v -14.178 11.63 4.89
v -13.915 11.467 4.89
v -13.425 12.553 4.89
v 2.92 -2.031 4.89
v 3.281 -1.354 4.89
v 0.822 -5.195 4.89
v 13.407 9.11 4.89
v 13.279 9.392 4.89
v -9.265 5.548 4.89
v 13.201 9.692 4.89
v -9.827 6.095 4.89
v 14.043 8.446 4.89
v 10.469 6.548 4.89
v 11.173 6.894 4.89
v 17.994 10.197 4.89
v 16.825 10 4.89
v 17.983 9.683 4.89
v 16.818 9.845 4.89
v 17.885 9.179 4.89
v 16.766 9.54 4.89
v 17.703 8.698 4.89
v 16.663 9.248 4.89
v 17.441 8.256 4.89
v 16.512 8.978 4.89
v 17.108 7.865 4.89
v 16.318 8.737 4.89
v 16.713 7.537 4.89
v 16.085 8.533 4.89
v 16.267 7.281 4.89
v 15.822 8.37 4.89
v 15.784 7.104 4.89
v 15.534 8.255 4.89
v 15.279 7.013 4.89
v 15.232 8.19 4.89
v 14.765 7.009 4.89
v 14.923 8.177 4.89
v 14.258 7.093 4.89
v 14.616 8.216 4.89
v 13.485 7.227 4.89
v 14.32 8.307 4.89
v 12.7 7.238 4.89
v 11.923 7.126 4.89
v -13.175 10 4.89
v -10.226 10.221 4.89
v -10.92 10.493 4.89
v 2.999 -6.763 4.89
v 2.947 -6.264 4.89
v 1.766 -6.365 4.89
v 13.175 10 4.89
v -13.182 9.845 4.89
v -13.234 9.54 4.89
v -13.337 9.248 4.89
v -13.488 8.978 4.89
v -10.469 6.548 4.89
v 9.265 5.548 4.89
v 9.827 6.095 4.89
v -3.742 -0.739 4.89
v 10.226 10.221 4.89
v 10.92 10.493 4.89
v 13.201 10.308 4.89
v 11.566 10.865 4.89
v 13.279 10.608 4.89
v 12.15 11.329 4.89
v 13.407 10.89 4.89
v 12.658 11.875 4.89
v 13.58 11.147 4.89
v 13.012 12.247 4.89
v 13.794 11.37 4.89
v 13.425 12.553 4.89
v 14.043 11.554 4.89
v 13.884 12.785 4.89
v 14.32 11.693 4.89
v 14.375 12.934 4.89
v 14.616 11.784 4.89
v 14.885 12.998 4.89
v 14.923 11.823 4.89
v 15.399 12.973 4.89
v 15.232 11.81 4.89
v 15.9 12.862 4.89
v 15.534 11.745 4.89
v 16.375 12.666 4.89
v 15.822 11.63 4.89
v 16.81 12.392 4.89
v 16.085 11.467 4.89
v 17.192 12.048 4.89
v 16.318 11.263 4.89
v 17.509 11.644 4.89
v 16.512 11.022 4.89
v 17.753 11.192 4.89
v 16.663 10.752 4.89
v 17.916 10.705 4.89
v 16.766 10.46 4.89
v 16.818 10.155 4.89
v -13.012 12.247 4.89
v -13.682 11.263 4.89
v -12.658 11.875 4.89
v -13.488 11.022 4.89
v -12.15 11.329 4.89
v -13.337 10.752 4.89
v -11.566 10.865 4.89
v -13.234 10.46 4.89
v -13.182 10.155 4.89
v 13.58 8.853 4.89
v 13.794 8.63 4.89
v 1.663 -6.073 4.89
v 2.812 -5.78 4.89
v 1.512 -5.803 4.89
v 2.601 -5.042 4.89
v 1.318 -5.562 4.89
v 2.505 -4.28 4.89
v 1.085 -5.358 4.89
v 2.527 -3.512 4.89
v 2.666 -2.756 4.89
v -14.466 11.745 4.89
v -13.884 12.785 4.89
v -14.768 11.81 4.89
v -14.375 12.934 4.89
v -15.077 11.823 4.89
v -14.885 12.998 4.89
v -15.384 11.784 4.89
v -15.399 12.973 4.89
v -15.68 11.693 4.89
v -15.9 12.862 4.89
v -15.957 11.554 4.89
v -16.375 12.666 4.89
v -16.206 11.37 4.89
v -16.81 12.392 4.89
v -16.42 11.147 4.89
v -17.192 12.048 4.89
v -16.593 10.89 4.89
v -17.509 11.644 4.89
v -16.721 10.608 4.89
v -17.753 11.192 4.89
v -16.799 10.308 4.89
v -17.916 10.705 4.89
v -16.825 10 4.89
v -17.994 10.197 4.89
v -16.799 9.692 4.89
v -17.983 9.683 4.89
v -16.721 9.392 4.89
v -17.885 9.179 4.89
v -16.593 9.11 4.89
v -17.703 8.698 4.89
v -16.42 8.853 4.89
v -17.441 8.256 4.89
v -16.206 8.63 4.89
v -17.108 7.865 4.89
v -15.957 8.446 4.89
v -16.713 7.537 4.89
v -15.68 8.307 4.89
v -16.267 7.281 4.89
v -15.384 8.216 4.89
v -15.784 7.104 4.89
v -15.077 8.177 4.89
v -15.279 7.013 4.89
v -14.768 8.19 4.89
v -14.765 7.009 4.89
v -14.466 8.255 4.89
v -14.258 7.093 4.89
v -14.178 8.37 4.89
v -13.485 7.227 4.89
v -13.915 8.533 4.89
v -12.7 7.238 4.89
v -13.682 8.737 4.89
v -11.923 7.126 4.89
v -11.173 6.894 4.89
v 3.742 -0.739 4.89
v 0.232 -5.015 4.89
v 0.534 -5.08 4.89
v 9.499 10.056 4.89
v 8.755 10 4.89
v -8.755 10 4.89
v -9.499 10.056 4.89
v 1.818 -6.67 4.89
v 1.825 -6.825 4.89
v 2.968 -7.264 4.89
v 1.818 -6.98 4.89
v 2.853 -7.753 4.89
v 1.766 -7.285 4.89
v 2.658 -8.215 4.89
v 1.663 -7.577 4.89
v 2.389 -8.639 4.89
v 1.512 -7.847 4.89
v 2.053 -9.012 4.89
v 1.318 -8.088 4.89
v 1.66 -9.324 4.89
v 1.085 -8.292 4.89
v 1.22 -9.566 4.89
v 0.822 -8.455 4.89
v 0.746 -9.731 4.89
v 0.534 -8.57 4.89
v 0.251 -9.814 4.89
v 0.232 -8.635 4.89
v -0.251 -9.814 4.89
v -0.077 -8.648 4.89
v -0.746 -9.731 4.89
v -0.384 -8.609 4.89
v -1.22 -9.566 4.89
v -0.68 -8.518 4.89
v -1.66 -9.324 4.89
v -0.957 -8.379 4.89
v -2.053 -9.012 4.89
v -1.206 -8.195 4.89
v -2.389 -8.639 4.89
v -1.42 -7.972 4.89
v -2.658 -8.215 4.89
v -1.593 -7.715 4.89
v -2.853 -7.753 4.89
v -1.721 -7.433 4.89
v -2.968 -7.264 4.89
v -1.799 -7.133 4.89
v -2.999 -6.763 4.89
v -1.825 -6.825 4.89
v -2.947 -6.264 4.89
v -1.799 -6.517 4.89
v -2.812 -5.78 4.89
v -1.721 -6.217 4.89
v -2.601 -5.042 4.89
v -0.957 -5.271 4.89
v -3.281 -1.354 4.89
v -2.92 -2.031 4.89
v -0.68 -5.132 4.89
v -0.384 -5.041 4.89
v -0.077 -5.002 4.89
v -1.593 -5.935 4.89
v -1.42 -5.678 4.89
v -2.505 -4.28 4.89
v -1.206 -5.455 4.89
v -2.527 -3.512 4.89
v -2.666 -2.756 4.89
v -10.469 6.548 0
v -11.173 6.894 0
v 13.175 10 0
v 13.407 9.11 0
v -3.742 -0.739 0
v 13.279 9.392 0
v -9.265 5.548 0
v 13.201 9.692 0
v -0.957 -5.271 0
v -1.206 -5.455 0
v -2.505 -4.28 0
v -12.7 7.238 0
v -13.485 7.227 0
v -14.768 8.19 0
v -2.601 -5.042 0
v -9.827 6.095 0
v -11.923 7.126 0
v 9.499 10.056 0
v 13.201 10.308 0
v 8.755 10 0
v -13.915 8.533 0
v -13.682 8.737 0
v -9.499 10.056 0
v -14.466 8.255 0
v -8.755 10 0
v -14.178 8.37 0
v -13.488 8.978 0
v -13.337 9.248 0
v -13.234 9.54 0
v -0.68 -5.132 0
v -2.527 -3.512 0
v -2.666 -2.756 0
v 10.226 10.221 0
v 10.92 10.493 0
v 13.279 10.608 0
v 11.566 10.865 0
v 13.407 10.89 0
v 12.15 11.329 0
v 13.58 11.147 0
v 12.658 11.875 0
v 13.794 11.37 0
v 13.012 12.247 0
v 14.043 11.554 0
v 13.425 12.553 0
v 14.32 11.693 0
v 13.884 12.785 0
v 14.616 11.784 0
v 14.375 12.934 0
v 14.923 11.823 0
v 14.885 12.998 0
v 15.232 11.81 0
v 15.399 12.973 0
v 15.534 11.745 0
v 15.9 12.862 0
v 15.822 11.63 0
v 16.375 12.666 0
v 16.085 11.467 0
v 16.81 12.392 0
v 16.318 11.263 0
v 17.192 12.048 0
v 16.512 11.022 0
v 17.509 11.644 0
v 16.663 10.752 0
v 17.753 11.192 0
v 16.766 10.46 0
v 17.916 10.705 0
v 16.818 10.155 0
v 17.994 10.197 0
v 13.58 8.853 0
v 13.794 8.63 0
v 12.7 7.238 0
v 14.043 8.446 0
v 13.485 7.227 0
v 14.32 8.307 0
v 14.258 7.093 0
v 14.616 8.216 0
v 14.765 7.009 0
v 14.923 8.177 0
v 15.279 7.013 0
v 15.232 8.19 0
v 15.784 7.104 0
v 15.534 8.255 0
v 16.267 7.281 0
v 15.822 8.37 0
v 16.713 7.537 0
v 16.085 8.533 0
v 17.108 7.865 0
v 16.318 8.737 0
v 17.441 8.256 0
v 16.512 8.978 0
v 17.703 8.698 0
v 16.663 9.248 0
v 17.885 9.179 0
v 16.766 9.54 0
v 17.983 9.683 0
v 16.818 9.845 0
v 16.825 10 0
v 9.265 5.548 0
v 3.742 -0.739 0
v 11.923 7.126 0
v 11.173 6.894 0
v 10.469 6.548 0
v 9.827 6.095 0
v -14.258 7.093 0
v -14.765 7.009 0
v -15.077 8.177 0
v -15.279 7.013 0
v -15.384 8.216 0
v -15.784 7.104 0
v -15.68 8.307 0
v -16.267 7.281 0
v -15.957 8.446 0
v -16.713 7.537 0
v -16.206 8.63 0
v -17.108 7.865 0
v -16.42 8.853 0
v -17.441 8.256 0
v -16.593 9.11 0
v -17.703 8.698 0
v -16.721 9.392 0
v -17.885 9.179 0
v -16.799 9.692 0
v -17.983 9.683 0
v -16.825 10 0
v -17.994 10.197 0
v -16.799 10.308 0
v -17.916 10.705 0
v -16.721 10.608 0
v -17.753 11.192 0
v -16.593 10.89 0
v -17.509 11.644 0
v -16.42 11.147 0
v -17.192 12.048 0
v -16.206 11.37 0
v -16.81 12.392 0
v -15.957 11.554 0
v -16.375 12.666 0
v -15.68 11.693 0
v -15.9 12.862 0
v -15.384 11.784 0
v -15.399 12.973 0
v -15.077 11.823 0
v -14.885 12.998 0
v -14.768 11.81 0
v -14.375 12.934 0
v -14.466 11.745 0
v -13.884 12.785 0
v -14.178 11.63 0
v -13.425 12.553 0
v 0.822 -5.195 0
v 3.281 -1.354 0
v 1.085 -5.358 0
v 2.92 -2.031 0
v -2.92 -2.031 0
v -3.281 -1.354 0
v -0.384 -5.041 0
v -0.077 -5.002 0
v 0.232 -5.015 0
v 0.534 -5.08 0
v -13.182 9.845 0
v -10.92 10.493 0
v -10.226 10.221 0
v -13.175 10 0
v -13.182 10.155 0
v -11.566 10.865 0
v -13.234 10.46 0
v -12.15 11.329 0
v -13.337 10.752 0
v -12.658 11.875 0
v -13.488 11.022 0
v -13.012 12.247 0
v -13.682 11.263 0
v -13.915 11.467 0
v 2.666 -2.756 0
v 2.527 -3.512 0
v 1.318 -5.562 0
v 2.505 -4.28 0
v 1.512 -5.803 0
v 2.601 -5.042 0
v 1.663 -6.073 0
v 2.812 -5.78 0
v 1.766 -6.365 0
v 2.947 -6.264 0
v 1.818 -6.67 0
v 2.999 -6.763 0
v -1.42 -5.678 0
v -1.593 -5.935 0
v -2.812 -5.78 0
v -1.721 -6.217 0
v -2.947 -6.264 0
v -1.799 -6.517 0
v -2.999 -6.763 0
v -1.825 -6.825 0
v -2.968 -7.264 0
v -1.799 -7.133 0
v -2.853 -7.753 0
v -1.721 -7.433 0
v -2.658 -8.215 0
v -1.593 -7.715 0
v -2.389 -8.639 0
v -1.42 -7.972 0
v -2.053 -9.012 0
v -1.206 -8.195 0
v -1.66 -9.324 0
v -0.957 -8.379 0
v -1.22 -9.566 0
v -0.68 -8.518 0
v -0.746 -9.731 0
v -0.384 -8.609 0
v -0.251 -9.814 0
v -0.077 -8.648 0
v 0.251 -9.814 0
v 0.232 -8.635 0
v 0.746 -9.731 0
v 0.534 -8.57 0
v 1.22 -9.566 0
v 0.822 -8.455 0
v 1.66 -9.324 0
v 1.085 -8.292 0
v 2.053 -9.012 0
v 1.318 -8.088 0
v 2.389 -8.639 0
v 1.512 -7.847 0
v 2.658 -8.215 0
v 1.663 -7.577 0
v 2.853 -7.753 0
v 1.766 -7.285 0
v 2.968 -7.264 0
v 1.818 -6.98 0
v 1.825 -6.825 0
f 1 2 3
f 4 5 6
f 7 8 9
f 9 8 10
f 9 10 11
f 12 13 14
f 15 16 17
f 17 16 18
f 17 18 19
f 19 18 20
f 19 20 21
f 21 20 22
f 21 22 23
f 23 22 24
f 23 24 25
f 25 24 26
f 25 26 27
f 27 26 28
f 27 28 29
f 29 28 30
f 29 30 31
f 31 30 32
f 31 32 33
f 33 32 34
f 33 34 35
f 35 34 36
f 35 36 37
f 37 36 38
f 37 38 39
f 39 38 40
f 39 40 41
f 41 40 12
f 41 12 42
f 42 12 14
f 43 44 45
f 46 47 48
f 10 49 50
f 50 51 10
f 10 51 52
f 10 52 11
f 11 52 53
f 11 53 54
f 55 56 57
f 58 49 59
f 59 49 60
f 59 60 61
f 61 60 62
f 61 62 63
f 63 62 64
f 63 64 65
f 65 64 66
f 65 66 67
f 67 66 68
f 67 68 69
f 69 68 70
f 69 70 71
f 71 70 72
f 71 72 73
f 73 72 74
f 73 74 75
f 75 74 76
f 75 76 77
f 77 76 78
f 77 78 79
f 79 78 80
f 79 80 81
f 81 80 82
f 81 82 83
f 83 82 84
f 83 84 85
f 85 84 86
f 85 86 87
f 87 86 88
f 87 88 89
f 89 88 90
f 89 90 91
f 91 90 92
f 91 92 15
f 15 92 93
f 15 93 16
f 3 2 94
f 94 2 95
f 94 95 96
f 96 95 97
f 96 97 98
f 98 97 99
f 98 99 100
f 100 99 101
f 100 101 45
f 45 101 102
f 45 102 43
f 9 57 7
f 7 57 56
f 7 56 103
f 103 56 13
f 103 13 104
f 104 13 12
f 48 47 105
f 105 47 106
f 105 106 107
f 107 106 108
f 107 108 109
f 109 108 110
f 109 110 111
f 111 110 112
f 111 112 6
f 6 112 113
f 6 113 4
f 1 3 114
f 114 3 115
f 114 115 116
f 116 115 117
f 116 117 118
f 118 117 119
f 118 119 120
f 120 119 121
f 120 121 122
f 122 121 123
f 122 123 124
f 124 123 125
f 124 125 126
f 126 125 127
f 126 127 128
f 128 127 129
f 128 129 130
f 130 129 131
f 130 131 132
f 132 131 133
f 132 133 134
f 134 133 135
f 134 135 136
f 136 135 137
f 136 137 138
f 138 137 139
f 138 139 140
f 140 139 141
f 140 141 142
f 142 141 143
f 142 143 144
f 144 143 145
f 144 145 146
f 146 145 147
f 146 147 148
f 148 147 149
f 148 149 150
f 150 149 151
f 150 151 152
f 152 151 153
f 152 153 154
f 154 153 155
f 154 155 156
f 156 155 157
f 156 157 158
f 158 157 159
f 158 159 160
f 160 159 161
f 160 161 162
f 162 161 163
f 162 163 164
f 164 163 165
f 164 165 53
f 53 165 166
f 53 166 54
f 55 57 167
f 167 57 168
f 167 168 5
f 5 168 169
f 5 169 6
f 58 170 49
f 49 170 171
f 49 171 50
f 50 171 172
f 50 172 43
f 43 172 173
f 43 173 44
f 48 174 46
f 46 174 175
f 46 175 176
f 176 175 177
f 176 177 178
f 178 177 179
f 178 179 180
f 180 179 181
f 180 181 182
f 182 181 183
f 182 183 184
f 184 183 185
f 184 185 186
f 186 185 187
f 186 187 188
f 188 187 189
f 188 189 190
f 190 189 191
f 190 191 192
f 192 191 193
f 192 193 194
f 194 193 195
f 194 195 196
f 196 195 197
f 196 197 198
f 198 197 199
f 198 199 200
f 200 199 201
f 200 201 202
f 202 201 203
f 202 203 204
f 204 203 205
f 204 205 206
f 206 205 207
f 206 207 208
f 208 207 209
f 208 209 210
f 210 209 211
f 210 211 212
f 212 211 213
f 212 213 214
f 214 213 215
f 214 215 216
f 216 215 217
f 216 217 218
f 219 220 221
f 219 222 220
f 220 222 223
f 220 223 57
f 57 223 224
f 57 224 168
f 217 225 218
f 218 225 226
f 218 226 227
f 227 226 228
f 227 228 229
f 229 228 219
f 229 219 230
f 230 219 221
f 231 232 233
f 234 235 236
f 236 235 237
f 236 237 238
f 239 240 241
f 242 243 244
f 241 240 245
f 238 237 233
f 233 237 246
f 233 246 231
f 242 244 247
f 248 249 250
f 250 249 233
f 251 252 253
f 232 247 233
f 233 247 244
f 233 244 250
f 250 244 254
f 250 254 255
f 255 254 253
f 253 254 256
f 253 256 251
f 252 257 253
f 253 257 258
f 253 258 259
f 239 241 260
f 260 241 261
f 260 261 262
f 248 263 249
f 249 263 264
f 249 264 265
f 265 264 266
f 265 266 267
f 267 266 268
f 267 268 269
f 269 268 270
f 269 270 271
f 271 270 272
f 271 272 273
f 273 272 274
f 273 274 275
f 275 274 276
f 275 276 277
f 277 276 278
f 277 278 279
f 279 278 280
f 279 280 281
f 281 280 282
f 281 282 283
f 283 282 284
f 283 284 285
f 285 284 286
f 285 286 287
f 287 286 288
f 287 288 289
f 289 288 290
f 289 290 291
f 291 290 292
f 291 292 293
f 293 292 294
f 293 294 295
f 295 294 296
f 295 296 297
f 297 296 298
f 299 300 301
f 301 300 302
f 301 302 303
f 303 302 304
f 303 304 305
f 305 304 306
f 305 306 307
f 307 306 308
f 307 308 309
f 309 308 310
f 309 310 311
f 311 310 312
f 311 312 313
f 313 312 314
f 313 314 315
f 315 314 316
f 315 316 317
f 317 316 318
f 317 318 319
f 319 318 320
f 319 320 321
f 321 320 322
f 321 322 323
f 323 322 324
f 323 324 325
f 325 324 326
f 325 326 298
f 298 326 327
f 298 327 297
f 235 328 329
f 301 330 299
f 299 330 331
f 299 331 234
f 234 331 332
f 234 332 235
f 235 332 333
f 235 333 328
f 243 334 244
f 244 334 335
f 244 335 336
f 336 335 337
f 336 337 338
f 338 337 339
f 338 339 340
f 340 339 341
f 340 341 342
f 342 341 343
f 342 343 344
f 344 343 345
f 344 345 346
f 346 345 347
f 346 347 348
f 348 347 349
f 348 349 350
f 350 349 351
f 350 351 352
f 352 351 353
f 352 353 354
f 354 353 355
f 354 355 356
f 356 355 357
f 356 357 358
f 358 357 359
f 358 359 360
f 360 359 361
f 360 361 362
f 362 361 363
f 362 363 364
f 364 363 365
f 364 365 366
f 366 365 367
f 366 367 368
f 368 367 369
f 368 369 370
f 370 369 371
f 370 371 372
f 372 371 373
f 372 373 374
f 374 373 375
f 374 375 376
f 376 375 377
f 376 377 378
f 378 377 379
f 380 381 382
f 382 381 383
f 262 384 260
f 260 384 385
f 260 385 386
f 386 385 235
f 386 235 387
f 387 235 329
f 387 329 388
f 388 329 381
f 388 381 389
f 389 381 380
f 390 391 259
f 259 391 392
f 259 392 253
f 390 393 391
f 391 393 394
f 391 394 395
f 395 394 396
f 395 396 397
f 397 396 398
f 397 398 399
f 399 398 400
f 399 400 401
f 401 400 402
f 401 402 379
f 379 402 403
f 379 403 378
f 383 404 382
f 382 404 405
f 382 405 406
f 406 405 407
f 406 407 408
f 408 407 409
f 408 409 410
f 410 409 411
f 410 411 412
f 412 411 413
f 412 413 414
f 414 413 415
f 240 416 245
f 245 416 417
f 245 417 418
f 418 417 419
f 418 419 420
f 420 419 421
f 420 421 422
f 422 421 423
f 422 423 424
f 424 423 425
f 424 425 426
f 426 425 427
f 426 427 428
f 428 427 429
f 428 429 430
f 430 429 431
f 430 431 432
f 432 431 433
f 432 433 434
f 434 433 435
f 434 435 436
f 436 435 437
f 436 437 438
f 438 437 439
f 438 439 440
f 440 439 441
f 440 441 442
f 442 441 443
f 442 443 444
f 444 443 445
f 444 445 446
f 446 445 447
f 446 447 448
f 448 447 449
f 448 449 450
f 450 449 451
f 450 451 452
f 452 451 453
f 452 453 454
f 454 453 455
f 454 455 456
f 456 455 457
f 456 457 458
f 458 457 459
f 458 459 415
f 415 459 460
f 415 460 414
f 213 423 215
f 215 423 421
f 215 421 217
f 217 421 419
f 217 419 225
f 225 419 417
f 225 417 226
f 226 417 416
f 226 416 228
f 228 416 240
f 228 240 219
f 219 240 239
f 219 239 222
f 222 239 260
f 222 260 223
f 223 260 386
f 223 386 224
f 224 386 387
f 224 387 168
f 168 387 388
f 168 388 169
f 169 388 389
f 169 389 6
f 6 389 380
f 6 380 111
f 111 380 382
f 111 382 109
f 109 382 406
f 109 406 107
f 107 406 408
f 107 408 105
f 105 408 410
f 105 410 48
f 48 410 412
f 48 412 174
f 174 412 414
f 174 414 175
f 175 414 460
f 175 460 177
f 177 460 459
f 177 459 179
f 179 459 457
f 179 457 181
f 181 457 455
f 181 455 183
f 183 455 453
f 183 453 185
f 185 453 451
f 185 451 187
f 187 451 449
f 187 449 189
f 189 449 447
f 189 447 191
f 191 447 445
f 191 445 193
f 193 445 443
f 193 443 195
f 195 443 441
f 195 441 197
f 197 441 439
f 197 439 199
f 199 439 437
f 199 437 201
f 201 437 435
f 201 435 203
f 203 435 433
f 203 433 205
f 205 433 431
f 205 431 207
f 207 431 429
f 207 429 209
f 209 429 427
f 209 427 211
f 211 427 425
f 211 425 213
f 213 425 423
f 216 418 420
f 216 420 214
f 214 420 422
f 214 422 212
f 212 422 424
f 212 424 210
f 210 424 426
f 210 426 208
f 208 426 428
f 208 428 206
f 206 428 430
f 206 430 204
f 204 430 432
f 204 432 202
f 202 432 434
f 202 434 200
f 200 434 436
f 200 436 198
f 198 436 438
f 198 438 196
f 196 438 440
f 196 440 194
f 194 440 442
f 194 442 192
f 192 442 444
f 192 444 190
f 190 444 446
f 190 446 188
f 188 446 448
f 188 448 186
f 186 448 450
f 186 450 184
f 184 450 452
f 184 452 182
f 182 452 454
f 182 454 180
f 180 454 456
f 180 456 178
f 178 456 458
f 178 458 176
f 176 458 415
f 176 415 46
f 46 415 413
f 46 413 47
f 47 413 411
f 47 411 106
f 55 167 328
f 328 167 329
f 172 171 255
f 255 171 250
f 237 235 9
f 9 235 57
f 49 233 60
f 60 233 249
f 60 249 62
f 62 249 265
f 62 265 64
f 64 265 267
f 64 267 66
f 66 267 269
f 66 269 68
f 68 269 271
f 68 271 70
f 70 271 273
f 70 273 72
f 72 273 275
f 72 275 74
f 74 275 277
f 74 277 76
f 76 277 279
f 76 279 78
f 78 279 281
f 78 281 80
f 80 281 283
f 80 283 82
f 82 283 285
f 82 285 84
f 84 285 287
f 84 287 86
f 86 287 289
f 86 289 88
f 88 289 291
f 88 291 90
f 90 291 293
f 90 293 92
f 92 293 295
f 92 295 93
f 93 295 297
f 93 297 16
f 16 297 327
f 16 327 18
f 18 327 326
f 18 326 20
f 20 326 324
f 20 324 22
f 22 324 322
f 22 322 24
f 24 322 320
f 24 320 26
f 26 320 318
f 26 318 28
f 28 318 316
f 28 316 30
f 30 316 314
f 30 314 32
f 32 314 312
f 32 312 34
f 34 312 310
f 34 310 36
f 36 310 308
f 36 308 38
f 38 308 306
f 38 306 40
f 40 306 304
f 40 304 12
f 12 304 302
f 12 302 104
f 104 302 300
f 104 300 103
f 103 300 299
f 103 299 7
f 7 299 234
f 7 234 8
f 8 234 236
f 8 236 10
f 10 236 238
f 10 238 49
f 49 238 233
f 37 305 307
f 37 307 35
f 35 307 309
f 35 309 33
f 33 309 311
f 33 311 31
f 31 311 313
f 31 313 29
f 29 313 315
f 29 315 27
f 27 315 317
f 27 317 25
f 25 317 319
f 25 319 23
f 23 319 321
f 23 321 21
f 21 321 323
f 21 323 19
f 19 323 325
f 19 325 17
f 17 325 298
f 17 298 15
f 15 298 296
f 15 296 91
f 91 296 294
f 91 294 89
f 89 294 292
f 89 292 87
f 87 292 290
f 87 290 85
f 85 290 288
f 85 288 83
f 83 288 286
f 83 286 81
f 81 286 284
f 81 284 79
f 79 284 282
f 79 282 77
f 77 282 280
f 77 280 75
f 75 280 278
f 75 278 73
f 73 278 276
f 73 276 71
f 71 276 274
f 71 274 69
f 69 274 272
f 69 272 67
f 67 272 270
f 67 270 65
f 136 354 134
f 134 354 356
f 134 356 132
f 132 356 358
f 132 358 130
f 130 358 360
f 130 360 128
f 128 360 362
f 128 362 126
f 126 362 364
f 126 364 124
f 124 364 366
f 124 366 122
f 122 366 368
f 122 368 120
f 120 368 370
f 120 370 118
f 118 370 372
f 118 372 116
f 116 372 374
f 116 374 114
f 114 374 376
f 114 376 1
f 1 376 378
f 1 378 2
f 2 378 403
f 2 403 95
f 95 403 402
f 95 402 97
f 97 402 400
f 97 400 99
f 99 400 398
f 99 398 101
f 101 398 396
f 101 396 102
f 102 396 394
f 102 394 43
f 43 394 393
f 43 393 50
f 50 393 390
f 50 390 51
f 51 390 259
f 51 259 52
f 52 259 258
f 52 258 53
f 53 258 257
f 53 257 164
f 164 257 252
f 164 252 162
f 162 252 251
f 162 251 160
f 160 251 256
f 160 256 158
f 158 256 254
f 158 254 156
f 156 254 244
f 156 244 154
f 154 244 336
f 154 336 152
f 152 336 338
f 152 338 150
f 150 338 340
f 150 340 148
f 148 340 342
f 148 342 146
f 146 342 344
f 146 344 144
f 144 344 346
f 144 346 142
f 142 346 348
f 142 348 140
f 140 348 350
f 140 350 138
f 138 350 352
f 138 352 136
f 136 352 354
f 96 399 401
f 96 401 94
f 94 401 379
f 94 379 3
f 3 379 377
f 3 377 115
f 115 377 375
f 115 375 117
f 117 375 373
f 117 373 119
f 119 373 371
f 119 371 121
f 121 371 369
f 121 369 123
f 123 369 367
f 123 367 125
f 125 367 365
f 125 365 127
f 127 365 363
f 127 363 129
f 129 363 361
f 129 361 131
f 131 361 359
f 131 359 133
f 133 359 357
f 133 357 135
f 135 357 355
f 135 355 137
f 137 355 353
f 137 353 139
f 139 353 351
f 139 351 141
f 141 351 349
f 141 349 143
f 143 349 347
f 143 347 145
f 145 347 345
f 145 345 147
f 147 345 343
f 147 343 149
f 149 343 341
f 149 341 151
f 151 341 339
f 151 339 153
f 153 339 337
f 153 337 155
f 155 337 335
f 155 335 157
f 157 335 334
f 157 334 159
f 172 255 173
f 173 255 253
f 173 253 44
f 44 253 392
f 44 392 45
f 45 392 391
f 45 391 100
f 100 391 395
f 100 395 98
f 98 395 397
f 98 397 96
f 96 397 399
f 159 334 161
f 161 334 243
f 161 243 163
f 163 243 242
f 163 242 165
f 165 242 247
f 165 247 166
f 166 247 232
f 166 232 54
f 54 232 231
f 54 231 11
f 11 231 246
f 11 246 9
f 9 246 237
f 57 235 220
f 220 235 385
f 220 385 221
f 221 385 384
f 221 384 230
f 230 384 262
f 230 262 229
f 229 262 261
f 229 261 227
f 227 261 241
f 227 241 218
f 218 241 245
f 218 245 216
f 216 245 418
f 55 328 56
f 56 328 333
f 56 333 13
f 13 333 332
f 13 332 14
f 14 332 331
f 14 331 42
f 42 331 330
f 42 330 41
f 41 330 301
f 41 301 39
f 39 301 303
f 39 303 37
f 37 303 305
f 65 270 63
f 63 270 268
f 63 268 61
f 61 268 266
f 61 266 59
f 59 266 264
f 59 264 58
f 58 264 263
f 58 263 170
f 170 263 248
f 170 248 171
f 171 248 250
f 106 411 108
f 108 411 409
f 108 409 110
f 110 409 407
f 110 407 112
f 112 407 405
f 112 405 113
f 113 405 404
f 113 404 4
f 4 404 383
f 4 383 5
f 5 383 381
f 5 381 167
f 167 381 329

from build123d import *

# Parameters (mm, degrees)
ESQUISSE2_R        = 3
ESQUISSE2_R_2      = 1.825
BOSS_EXTRU_1_DEPTH = 4.89
CONG_1_R           = 5


with BuildPart() as part:
    # Esquisse2 → Boss.-Extru.1 (new body)
    # profile 1 of 4: a face of its own
    with BuildSketch(Plane.XY):
        with Locations((-15, 10)):
            Circle(ESQUISSE2_R)
        with Locations((-15, 10)):
            Circle(ESQUISSE2_R_2, mode=Mode.SUBTRACT)
    # profile 2 of 4: a face of its own
    with BuildSketch(Plane.XY):
        with Locations((15, 10)):
            Circle(ESQUISSE2_R)
        with Locations((15, 10)):
            Circle(ESQUISSE2_R_2, mode=Mode.SUBTRACT)
    # profile 3 of 4: a face of its own
    with BuildSketch(Plane.XY):
        with Locations((0, -6.825)):
            Circle(ESQUISSE2_R)
        with Locations((0, -6.825)):
            Circle(ESQUISSE2_R_2, mode=Mode.SUBTRACT)
    # profile 4 of 4: a face of its own
    with BuildSketch(Plane.XY):
        Polygon((-13.175, 10), (13.175, 10), (0, -5), align=None)
    extrude(amount=BOSS_EXTRU_1_DEPTH)

    # Congé1
    cong_1_edges = [part.edges().sort_by_distance(p)[0] for p in [
        (-12.208908932, 8.900086071, 2.445),
        (-12, 10, 2.445),
        (12, 10, 2.445),
        (12.208908932, 8.900086071, 2.445),
        (0.908352526, -3.965822551, 2.445),
        (-0.908352526, -3.965822551, 2.445),
    ]]
    fillet(cong_1_edges, radius=CONG_1_R)


solid = part.part
